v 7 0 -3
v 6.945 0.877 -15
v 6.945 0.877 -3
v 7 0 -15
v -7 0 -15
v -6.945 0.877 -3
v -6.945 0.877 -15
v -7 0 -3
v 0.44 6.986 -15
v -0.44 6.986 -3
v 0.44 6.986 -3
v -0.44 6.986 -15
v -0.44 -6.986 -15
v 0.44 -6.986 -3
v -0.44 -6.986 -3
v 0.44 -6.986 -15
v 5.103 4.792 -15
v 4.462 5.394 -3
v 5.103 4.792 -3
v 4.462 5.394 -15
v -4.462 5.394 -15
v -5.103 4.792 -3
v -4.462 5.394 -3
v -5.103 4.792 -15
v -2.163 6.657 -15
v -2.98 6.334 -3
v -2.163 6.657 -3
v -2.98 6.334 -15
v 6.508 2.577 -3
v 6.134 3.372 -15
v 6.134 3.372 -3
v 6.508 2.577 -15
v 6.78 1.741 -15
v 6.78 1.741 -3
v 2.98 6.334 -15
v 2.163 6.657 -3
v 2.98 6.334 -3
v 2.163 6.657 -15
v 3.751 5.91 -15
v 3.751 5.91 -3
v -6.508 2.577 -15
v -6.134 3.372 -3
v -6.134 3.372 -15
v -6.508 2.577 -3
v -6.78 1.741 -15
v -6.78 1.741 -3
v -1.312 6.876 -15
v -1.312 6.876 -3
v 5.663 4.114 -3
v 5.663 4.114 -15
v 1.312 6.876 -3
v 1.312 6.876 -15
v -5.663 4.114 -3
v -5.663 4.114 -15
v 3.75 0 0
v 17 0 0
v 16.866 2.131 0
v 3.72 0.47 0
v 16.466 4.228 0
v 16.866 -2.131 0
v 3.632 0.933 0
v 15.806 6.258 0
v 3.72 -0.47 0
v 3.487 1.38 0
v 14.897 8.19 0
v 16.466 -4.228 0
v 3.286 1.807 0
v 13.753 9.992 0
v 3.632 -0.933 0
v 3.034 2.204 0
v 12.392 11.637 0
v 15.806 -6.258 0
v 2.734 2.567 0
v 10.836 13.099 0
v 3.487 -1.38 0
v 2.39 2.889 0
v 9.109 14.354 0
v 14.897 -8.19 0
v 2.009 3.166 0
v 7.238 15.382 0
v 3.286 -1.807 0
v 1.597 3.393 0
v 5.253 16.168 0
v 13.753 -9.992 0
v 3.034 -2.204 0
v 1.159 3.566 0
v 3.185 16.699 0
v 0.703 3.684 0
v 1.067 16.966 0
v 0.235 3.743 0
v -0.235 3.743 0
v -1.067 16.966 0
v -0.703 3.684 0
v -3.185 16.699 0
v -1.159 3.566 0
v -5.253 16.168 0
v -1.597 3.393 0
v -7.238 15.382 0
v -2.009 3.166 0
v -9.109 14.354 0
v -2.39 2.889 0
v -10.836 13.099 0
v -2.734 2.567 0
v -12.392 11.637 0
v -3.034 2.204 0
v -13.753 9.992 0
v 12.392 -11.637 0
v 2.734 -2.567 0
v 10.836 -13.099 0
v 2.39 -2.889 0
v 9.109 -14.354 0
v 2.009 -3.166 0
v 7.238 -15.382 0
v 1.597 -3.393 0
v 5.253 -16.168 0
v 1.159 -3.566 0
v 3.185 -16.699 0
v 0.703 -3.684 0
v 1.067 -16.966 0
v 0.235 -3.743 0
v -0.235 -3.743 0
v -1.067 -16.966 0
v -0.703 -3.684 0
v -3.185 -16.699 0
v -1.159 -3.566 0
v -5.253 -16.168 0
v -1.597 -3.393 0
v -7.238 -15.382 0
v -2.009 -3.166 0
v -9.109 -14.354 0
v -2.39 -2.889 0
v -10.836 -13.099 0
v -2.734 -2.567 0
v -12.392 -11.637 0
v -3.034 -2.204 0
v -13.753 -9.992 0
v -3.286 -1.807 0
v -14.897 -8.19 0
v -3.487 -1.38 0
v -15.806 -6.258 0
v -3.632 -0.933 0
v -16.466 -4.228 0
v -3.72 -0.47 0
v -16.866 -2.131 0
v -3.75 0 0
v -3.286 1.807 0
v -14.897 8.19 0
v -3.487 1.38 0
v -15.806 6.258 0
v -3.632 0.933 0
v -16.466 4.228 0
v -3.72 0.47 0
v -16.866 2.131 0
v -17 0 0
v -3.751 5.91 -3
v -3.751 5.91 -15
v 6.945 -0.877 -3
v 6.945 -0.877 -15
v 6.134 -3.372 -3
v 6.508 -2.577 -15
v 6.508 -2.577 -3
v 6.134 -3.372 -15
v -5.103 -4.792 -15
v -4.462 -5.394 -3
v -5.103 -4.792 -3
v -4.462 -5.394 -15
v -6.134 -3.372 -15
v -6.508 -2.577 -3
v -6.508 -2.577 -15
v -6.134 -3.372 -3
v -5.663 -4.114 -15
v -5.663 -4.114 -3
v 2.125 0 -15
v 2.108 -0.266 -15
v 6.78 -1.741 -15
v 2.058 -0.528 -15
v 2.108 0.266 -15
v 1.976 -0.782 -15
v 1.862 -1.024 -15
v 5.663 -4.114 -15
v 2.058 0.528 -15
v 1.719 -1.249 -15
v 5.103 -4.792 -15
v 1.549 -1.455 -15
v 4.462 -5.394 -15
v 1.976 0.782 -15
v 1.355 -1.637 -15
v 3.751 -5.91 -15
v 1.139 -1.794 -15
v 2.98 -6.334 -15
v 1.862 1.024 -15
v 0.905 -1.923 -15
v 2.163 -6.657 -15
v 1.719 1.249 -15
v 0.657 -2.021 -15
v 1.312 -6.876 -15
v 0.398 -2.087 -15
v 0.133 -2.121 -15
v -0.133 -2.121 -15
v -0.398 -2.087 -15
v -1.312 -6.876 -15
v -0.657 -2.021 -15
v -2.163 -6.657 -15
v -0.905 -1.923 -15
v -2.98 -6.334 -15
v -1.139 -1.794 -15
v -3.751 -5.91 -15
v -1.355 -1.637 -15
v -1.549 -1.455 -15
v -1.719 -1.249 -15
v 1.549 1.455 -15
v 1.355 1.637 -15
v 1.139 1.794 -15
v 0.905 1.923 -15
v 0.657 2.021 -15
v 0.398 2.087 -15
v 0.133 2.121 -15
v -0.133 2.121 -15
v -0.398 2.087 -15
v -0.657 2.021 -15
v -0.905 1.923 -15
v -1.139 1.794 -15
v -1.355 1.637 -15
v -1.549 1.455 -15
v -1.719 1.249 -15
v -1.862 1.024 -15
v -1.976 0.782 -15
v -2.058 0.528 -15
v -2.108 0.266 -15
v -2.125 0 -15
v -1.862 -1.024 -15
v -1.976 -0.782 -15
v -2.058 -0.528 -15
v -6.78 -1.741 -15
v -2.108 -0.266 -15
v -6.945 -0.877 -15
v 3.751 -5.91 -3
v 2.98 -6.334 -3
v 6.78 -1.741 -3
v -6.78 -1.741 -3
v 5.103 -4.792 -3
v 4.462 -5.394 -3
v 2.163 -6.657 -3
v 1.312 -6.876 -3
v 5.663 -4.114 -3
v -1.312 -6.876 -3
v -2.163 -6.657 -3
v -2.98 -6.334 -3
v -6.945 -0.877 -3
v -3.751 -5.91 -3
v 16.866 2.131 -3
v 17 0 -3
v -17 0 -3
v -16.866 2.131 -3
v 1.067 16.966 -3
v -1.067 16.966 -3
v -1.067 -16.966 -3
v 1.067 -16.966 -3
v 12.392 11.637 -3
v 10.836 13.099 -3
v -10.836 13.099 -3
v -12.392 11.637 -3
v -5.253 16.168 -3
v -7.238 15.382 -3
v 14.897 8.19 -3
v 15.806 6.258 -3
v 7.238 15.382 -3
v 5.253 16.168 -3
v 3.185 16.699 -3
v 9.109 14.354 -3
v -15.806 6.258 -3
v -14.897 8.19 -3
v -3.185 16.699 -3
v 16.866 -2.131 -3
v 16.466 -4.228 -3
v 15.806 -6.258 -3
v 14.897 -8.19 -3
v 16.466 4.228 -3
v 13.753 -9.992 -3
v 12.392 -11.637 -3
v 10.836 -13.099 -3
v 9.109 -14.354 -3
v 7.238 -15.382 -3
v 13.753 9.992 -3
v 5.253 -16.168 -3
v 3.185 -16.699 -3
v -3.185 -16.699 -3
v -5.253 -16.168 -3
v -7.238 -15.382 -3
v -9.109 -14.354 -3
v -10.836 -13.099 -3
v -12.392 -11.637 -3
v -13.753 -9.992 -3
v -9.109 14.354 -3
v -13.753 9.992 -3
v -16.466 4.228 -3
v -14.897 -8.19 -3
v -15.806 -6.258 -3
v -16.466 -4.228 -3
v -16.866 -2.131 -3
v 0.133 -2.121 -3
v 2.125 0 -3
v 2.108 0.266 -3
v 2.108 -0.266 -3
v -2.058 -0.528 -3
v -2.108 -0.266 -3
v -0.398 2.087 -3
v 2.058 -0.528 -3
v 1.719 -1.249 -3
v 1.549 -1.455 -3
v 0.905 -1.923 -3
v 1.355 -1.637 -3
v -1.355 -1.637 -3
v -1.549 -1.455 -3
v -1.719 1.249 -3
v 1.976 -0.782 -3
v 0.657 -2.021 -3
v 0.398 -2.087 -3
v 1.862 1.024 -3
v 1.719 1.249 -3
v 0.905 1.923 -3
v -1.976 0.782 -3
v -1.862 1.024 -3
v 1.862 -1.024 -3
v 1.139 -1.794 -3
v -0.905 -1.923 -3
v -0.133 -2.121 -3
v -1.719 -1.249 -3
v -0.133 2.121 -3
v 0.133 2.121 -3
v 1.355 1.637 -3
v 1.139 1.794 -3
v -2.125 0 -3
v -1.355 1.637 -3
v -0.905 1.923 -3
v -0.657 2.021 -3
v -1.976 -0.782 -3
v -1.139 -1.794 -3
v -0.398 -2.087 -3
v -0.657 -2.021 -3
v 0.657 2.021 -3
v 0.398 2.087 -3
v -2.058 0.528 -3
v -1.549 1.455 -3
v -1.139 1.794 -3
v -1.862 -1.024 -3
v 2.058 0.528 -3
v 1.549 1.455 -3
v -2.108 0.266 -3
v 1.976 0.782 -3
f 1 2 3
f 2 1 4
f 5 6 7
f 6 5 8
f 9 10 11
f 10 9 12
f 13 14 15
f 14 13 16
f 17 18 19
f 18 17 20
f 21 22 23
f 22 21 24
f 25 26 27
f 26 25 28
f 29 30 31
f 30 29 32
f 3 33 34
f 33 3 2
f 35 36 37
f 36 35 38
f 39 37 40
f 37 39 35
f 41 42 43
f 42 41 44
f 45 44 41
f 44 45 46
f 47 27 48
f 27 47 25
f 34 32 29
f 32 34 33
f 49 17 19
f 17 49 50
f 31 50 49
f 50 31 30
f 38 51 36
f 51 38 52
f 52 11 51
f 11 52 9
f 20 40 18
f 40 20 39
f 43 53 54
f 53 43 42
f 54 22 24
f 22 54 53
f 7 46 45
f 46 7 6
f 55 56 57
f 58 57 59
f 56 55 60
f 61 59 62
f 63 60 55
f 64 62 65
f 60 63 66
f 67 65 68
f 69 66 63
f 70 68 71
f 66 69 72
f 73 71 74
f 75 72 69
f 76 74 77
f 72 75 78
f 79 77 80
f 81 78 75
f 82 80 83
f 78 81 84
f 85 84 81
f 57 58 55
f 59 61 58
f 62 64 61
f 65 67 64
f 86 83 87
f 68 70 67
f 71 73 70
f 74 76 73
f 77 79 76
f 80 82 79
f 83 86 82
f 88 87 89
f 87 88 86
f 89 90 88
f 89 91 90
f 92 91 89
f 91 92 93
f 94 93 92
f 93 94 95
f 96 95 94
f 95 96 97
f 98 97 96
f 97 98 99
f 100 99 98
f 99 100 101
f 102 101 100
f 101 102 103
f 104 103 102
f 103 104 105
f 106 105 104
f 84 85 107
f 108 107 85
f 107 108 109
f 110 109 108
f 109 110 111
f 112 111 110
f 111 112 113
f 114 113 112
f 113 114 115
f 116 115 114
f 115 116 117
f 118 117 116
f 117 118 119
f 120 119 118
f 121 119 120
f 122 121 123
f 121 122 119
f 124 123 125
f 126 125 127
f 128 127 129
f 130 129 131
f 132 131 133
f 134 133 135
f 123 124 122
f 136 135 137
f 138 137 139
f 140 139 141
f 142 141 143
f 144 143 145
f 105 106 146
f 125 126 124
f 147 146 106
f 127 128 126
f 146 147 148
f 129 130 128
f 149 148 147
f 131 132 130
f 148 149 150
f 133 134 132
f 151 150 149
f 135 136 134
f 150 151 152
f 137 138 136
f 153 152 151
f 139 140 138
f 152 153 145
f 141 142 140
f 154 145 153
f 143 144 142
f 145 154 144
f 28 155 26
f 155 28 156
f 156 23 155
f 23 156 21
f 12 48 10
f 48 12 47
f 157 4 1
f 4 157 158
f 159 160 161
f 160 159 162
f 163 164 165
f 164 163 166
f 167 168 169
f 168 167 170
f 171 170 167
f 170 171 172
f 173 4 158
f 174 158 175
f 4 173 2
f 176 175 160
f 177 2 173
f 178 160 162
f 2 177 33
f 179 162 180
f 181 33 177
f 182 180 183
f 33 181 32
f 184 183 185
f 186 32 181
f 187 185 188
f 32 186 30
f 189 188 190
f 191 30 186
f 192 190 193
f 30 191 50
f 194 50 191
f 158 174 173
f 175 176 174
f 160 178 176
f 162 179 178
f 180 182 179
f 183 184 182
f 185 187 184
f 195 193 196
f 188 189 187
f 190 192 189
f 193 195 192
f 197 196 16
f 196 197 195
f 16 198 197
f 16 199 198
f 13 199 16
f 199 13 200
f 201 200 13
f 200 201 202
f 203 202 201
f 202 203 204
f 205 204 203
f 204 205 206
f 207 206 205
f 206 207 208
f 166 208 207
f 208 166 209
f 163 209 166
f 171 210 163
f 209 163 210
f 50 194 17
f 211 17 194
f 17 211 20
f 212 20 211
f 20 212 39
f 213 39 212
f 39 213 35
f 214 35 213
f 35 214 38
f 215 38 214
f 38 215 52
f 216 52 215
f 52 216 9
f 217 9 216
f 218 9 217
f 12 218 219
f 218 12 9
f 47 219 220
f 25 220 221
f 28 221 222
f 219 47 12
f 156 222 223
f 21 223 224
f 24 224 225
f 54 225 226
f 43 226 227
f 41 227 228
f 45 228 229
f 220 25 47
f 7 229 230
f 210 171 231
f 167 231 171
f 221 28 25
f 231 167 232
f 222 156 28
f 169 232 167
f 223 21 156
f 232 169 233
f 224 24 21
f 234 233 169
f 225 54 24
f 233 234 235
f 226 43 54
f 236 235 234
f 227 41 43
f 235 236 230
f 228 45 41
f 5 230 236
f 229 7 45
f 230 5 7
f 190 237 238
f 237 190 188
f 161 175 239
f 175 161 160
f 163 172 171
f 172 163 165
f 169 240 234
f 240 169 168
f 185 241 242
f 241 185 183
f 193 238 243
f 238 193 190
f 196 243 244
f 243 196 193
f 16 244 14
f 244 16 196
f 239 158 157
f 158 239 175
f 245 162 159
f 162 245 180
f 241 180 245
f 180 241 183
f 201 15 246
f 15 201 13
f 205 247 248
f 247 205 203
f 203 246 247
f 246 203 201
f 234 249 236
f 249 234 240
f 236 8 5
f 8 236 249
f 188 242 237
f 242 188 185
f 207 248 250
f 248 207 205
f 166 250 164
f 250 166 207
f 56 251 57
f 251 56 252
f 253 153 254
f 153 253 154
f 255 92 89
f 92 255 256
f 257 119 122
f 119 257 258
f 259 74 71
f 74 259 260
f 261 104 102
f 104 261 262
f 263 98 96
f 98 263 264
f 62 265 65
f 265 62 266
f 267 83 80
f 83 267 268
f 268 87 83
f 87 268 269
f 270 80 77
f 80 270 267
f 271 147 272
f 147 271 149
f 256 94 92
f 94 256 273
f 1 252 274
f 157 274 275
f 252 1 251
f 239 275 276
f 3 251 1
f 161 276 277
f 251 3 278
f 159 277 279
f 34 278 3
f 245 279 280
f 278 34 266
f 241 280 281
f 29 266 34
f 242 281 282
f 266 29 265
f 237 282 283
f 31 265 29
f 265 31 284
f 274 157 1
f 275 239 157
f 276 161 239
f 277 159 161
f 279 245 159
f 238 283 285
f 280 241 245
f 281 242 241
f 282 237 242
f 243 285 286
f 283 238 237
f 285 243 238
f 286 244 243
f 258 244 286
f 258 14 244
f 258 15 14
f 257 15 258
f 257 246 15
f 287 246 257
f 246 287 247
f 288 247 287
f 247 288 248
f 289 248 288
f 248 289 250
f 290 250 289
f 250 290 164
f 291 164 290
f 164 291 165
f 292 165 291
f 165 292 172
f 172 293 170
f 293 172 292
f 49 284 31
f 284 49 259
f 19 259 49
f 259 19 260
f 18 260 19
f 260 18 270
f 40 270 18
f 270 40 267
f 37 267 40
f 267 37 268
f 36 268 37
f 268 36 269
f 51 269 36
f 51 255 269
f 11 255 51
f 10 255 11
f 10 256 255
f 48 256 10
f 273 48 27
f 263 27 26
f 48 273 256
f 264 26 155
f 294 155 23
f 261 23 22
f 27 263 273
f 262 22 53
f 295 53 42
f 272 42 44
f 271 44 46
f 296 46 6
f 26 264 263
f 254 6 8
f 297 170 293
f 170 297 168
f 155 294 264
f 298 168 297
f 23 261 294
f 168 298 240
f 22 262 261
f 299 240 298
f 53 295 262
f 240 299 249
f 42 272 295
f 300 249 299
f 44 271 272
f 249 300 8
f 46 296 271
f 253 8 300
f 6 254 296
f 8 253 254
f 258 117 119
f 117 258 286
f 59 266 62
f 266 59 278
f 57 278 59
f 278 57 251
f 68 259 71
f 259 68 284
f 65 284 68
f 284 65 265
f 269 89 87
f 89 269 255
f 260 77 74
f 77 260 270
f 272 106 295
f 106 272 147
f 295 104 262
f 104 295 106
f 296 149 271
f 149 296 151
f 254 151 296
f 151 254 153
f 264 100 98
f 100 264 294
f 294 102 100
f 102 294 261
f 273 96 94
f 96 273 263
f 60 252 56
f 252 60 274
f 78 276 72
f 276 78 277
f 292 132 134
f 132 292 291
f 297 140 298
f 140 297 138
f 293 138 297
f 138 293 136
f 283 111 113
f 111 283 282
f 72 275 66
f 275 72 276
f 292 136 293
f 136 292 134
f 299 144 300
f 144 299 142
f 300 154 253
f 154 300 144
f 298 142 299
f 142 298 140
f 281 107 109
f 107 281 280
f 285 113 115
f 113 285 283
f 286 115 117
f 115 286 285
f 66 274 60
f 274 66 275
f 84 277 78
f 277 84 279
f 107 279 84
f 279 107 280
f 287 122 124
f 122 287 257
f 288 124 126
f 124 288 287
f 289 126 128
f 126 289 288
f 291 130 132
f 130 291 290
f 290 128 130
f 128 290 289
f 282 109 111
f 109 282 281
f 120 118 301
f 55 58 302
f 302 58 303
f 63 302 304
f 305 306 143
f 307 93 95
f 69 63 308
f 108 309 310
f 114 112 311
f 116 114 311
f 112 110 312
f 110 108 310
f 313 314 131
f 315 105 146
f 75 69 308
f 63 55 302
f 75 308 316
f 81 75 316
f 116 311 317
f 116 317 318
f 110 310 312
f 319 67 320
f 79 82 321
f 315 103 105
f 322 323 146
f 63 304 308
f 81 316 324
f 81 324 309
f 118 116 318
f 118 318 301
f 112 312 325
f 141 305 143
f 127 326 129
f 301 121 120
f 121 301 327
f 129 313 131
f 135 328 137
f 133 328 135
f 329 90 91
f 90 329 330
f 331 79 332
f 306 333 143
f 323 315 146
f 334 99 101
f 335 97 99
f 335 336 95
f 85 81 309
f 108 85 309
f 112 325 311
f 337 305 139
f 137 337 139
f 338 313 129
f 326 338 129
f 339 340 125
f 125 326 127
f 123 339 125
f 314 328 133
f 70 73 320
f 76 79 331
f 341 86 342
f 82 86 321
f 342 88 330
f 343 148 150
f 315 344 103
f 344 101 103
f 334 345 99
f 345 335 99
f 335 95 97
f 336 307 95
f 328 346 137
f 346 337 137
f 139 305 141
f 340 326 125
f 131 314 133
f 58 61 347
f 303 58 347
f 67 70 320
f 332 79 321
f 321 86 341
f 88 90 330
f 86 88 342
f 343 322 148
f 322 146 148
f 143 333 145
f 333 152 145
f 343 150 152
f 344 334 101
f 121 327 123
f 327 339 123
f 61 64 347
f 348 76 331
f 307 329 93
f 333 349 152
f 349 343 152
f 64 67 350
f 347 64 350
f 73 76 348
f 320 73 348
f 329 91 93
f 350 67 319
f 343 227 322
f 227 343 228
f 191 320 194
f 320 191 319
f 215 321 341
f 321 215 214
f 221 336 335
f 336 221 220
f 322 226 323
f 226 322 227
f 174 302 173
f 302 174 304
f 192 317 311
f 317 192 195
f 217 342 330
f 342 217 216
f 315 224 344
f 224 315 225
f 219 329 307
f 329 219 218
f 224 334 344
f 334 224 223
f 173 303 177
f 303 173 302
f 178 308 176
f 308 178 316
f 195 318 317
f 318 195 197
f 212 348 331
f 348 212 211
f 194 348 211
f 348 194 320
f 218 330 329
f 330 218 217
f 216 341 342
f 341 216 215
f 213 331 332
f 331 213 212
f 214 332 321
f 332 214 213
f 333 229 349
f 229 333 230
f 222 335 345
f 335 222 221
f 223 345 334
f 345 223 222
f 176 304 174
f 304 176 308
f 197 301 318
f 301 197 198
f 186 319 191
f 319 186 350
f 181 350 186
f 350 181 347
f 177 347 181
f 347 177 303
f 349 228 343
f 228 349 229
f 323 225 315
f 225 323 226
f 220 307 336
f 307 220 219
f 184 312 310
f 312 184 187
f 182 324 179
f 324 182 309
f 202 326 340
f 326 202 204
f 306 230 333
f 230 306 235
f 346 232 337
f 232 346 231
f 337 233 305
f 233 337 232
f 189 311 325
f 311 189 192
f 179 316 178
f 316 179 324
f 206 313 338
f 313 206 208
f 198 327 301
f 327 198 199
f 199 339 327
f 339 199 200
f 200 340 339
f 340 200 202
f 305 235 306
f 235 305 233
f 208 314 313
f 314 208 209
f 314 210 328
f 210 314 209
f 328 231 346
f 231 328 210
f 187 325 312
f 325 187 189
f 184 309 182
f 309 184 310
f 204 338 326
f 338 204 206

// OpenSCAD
$fn = 50;


difference() {
	union() {
		translate(v = [0, 0, -15.0000000000]) {
			cylinder(h = 15, r = 7.0000000000);
		}
		translate(v = [0, 0, -3.0000000000]) {
			cylinder(h = 3, r = 17.0000000000);
		}
	}
	union() {
		translate(v = [0, 0, 0]) {
			rotate(a = [0, 0, 0]) {
				difference() {
					union() {
						#translate(v = [0, 0, -15.0000000000]) {
							cylinder(h = 15, r = 2.0000000000);
						}
						#translate(v = [0, 0, -3]) {
							cylinder(h = 3, r1 = 2.1250000000, r2 = 3.7500000000);
						}
						#translate(v = [0, 0, -15.0000000000]) {
							cylinder(h = 15, r = 2.1250000000);
						}
						#translate(v = [0, 0, -15.0000000000]) {
							cylinder(h = 15, r = 2.0000000000);
						}
					}
					union();
				}
			}
		}
	}
}
